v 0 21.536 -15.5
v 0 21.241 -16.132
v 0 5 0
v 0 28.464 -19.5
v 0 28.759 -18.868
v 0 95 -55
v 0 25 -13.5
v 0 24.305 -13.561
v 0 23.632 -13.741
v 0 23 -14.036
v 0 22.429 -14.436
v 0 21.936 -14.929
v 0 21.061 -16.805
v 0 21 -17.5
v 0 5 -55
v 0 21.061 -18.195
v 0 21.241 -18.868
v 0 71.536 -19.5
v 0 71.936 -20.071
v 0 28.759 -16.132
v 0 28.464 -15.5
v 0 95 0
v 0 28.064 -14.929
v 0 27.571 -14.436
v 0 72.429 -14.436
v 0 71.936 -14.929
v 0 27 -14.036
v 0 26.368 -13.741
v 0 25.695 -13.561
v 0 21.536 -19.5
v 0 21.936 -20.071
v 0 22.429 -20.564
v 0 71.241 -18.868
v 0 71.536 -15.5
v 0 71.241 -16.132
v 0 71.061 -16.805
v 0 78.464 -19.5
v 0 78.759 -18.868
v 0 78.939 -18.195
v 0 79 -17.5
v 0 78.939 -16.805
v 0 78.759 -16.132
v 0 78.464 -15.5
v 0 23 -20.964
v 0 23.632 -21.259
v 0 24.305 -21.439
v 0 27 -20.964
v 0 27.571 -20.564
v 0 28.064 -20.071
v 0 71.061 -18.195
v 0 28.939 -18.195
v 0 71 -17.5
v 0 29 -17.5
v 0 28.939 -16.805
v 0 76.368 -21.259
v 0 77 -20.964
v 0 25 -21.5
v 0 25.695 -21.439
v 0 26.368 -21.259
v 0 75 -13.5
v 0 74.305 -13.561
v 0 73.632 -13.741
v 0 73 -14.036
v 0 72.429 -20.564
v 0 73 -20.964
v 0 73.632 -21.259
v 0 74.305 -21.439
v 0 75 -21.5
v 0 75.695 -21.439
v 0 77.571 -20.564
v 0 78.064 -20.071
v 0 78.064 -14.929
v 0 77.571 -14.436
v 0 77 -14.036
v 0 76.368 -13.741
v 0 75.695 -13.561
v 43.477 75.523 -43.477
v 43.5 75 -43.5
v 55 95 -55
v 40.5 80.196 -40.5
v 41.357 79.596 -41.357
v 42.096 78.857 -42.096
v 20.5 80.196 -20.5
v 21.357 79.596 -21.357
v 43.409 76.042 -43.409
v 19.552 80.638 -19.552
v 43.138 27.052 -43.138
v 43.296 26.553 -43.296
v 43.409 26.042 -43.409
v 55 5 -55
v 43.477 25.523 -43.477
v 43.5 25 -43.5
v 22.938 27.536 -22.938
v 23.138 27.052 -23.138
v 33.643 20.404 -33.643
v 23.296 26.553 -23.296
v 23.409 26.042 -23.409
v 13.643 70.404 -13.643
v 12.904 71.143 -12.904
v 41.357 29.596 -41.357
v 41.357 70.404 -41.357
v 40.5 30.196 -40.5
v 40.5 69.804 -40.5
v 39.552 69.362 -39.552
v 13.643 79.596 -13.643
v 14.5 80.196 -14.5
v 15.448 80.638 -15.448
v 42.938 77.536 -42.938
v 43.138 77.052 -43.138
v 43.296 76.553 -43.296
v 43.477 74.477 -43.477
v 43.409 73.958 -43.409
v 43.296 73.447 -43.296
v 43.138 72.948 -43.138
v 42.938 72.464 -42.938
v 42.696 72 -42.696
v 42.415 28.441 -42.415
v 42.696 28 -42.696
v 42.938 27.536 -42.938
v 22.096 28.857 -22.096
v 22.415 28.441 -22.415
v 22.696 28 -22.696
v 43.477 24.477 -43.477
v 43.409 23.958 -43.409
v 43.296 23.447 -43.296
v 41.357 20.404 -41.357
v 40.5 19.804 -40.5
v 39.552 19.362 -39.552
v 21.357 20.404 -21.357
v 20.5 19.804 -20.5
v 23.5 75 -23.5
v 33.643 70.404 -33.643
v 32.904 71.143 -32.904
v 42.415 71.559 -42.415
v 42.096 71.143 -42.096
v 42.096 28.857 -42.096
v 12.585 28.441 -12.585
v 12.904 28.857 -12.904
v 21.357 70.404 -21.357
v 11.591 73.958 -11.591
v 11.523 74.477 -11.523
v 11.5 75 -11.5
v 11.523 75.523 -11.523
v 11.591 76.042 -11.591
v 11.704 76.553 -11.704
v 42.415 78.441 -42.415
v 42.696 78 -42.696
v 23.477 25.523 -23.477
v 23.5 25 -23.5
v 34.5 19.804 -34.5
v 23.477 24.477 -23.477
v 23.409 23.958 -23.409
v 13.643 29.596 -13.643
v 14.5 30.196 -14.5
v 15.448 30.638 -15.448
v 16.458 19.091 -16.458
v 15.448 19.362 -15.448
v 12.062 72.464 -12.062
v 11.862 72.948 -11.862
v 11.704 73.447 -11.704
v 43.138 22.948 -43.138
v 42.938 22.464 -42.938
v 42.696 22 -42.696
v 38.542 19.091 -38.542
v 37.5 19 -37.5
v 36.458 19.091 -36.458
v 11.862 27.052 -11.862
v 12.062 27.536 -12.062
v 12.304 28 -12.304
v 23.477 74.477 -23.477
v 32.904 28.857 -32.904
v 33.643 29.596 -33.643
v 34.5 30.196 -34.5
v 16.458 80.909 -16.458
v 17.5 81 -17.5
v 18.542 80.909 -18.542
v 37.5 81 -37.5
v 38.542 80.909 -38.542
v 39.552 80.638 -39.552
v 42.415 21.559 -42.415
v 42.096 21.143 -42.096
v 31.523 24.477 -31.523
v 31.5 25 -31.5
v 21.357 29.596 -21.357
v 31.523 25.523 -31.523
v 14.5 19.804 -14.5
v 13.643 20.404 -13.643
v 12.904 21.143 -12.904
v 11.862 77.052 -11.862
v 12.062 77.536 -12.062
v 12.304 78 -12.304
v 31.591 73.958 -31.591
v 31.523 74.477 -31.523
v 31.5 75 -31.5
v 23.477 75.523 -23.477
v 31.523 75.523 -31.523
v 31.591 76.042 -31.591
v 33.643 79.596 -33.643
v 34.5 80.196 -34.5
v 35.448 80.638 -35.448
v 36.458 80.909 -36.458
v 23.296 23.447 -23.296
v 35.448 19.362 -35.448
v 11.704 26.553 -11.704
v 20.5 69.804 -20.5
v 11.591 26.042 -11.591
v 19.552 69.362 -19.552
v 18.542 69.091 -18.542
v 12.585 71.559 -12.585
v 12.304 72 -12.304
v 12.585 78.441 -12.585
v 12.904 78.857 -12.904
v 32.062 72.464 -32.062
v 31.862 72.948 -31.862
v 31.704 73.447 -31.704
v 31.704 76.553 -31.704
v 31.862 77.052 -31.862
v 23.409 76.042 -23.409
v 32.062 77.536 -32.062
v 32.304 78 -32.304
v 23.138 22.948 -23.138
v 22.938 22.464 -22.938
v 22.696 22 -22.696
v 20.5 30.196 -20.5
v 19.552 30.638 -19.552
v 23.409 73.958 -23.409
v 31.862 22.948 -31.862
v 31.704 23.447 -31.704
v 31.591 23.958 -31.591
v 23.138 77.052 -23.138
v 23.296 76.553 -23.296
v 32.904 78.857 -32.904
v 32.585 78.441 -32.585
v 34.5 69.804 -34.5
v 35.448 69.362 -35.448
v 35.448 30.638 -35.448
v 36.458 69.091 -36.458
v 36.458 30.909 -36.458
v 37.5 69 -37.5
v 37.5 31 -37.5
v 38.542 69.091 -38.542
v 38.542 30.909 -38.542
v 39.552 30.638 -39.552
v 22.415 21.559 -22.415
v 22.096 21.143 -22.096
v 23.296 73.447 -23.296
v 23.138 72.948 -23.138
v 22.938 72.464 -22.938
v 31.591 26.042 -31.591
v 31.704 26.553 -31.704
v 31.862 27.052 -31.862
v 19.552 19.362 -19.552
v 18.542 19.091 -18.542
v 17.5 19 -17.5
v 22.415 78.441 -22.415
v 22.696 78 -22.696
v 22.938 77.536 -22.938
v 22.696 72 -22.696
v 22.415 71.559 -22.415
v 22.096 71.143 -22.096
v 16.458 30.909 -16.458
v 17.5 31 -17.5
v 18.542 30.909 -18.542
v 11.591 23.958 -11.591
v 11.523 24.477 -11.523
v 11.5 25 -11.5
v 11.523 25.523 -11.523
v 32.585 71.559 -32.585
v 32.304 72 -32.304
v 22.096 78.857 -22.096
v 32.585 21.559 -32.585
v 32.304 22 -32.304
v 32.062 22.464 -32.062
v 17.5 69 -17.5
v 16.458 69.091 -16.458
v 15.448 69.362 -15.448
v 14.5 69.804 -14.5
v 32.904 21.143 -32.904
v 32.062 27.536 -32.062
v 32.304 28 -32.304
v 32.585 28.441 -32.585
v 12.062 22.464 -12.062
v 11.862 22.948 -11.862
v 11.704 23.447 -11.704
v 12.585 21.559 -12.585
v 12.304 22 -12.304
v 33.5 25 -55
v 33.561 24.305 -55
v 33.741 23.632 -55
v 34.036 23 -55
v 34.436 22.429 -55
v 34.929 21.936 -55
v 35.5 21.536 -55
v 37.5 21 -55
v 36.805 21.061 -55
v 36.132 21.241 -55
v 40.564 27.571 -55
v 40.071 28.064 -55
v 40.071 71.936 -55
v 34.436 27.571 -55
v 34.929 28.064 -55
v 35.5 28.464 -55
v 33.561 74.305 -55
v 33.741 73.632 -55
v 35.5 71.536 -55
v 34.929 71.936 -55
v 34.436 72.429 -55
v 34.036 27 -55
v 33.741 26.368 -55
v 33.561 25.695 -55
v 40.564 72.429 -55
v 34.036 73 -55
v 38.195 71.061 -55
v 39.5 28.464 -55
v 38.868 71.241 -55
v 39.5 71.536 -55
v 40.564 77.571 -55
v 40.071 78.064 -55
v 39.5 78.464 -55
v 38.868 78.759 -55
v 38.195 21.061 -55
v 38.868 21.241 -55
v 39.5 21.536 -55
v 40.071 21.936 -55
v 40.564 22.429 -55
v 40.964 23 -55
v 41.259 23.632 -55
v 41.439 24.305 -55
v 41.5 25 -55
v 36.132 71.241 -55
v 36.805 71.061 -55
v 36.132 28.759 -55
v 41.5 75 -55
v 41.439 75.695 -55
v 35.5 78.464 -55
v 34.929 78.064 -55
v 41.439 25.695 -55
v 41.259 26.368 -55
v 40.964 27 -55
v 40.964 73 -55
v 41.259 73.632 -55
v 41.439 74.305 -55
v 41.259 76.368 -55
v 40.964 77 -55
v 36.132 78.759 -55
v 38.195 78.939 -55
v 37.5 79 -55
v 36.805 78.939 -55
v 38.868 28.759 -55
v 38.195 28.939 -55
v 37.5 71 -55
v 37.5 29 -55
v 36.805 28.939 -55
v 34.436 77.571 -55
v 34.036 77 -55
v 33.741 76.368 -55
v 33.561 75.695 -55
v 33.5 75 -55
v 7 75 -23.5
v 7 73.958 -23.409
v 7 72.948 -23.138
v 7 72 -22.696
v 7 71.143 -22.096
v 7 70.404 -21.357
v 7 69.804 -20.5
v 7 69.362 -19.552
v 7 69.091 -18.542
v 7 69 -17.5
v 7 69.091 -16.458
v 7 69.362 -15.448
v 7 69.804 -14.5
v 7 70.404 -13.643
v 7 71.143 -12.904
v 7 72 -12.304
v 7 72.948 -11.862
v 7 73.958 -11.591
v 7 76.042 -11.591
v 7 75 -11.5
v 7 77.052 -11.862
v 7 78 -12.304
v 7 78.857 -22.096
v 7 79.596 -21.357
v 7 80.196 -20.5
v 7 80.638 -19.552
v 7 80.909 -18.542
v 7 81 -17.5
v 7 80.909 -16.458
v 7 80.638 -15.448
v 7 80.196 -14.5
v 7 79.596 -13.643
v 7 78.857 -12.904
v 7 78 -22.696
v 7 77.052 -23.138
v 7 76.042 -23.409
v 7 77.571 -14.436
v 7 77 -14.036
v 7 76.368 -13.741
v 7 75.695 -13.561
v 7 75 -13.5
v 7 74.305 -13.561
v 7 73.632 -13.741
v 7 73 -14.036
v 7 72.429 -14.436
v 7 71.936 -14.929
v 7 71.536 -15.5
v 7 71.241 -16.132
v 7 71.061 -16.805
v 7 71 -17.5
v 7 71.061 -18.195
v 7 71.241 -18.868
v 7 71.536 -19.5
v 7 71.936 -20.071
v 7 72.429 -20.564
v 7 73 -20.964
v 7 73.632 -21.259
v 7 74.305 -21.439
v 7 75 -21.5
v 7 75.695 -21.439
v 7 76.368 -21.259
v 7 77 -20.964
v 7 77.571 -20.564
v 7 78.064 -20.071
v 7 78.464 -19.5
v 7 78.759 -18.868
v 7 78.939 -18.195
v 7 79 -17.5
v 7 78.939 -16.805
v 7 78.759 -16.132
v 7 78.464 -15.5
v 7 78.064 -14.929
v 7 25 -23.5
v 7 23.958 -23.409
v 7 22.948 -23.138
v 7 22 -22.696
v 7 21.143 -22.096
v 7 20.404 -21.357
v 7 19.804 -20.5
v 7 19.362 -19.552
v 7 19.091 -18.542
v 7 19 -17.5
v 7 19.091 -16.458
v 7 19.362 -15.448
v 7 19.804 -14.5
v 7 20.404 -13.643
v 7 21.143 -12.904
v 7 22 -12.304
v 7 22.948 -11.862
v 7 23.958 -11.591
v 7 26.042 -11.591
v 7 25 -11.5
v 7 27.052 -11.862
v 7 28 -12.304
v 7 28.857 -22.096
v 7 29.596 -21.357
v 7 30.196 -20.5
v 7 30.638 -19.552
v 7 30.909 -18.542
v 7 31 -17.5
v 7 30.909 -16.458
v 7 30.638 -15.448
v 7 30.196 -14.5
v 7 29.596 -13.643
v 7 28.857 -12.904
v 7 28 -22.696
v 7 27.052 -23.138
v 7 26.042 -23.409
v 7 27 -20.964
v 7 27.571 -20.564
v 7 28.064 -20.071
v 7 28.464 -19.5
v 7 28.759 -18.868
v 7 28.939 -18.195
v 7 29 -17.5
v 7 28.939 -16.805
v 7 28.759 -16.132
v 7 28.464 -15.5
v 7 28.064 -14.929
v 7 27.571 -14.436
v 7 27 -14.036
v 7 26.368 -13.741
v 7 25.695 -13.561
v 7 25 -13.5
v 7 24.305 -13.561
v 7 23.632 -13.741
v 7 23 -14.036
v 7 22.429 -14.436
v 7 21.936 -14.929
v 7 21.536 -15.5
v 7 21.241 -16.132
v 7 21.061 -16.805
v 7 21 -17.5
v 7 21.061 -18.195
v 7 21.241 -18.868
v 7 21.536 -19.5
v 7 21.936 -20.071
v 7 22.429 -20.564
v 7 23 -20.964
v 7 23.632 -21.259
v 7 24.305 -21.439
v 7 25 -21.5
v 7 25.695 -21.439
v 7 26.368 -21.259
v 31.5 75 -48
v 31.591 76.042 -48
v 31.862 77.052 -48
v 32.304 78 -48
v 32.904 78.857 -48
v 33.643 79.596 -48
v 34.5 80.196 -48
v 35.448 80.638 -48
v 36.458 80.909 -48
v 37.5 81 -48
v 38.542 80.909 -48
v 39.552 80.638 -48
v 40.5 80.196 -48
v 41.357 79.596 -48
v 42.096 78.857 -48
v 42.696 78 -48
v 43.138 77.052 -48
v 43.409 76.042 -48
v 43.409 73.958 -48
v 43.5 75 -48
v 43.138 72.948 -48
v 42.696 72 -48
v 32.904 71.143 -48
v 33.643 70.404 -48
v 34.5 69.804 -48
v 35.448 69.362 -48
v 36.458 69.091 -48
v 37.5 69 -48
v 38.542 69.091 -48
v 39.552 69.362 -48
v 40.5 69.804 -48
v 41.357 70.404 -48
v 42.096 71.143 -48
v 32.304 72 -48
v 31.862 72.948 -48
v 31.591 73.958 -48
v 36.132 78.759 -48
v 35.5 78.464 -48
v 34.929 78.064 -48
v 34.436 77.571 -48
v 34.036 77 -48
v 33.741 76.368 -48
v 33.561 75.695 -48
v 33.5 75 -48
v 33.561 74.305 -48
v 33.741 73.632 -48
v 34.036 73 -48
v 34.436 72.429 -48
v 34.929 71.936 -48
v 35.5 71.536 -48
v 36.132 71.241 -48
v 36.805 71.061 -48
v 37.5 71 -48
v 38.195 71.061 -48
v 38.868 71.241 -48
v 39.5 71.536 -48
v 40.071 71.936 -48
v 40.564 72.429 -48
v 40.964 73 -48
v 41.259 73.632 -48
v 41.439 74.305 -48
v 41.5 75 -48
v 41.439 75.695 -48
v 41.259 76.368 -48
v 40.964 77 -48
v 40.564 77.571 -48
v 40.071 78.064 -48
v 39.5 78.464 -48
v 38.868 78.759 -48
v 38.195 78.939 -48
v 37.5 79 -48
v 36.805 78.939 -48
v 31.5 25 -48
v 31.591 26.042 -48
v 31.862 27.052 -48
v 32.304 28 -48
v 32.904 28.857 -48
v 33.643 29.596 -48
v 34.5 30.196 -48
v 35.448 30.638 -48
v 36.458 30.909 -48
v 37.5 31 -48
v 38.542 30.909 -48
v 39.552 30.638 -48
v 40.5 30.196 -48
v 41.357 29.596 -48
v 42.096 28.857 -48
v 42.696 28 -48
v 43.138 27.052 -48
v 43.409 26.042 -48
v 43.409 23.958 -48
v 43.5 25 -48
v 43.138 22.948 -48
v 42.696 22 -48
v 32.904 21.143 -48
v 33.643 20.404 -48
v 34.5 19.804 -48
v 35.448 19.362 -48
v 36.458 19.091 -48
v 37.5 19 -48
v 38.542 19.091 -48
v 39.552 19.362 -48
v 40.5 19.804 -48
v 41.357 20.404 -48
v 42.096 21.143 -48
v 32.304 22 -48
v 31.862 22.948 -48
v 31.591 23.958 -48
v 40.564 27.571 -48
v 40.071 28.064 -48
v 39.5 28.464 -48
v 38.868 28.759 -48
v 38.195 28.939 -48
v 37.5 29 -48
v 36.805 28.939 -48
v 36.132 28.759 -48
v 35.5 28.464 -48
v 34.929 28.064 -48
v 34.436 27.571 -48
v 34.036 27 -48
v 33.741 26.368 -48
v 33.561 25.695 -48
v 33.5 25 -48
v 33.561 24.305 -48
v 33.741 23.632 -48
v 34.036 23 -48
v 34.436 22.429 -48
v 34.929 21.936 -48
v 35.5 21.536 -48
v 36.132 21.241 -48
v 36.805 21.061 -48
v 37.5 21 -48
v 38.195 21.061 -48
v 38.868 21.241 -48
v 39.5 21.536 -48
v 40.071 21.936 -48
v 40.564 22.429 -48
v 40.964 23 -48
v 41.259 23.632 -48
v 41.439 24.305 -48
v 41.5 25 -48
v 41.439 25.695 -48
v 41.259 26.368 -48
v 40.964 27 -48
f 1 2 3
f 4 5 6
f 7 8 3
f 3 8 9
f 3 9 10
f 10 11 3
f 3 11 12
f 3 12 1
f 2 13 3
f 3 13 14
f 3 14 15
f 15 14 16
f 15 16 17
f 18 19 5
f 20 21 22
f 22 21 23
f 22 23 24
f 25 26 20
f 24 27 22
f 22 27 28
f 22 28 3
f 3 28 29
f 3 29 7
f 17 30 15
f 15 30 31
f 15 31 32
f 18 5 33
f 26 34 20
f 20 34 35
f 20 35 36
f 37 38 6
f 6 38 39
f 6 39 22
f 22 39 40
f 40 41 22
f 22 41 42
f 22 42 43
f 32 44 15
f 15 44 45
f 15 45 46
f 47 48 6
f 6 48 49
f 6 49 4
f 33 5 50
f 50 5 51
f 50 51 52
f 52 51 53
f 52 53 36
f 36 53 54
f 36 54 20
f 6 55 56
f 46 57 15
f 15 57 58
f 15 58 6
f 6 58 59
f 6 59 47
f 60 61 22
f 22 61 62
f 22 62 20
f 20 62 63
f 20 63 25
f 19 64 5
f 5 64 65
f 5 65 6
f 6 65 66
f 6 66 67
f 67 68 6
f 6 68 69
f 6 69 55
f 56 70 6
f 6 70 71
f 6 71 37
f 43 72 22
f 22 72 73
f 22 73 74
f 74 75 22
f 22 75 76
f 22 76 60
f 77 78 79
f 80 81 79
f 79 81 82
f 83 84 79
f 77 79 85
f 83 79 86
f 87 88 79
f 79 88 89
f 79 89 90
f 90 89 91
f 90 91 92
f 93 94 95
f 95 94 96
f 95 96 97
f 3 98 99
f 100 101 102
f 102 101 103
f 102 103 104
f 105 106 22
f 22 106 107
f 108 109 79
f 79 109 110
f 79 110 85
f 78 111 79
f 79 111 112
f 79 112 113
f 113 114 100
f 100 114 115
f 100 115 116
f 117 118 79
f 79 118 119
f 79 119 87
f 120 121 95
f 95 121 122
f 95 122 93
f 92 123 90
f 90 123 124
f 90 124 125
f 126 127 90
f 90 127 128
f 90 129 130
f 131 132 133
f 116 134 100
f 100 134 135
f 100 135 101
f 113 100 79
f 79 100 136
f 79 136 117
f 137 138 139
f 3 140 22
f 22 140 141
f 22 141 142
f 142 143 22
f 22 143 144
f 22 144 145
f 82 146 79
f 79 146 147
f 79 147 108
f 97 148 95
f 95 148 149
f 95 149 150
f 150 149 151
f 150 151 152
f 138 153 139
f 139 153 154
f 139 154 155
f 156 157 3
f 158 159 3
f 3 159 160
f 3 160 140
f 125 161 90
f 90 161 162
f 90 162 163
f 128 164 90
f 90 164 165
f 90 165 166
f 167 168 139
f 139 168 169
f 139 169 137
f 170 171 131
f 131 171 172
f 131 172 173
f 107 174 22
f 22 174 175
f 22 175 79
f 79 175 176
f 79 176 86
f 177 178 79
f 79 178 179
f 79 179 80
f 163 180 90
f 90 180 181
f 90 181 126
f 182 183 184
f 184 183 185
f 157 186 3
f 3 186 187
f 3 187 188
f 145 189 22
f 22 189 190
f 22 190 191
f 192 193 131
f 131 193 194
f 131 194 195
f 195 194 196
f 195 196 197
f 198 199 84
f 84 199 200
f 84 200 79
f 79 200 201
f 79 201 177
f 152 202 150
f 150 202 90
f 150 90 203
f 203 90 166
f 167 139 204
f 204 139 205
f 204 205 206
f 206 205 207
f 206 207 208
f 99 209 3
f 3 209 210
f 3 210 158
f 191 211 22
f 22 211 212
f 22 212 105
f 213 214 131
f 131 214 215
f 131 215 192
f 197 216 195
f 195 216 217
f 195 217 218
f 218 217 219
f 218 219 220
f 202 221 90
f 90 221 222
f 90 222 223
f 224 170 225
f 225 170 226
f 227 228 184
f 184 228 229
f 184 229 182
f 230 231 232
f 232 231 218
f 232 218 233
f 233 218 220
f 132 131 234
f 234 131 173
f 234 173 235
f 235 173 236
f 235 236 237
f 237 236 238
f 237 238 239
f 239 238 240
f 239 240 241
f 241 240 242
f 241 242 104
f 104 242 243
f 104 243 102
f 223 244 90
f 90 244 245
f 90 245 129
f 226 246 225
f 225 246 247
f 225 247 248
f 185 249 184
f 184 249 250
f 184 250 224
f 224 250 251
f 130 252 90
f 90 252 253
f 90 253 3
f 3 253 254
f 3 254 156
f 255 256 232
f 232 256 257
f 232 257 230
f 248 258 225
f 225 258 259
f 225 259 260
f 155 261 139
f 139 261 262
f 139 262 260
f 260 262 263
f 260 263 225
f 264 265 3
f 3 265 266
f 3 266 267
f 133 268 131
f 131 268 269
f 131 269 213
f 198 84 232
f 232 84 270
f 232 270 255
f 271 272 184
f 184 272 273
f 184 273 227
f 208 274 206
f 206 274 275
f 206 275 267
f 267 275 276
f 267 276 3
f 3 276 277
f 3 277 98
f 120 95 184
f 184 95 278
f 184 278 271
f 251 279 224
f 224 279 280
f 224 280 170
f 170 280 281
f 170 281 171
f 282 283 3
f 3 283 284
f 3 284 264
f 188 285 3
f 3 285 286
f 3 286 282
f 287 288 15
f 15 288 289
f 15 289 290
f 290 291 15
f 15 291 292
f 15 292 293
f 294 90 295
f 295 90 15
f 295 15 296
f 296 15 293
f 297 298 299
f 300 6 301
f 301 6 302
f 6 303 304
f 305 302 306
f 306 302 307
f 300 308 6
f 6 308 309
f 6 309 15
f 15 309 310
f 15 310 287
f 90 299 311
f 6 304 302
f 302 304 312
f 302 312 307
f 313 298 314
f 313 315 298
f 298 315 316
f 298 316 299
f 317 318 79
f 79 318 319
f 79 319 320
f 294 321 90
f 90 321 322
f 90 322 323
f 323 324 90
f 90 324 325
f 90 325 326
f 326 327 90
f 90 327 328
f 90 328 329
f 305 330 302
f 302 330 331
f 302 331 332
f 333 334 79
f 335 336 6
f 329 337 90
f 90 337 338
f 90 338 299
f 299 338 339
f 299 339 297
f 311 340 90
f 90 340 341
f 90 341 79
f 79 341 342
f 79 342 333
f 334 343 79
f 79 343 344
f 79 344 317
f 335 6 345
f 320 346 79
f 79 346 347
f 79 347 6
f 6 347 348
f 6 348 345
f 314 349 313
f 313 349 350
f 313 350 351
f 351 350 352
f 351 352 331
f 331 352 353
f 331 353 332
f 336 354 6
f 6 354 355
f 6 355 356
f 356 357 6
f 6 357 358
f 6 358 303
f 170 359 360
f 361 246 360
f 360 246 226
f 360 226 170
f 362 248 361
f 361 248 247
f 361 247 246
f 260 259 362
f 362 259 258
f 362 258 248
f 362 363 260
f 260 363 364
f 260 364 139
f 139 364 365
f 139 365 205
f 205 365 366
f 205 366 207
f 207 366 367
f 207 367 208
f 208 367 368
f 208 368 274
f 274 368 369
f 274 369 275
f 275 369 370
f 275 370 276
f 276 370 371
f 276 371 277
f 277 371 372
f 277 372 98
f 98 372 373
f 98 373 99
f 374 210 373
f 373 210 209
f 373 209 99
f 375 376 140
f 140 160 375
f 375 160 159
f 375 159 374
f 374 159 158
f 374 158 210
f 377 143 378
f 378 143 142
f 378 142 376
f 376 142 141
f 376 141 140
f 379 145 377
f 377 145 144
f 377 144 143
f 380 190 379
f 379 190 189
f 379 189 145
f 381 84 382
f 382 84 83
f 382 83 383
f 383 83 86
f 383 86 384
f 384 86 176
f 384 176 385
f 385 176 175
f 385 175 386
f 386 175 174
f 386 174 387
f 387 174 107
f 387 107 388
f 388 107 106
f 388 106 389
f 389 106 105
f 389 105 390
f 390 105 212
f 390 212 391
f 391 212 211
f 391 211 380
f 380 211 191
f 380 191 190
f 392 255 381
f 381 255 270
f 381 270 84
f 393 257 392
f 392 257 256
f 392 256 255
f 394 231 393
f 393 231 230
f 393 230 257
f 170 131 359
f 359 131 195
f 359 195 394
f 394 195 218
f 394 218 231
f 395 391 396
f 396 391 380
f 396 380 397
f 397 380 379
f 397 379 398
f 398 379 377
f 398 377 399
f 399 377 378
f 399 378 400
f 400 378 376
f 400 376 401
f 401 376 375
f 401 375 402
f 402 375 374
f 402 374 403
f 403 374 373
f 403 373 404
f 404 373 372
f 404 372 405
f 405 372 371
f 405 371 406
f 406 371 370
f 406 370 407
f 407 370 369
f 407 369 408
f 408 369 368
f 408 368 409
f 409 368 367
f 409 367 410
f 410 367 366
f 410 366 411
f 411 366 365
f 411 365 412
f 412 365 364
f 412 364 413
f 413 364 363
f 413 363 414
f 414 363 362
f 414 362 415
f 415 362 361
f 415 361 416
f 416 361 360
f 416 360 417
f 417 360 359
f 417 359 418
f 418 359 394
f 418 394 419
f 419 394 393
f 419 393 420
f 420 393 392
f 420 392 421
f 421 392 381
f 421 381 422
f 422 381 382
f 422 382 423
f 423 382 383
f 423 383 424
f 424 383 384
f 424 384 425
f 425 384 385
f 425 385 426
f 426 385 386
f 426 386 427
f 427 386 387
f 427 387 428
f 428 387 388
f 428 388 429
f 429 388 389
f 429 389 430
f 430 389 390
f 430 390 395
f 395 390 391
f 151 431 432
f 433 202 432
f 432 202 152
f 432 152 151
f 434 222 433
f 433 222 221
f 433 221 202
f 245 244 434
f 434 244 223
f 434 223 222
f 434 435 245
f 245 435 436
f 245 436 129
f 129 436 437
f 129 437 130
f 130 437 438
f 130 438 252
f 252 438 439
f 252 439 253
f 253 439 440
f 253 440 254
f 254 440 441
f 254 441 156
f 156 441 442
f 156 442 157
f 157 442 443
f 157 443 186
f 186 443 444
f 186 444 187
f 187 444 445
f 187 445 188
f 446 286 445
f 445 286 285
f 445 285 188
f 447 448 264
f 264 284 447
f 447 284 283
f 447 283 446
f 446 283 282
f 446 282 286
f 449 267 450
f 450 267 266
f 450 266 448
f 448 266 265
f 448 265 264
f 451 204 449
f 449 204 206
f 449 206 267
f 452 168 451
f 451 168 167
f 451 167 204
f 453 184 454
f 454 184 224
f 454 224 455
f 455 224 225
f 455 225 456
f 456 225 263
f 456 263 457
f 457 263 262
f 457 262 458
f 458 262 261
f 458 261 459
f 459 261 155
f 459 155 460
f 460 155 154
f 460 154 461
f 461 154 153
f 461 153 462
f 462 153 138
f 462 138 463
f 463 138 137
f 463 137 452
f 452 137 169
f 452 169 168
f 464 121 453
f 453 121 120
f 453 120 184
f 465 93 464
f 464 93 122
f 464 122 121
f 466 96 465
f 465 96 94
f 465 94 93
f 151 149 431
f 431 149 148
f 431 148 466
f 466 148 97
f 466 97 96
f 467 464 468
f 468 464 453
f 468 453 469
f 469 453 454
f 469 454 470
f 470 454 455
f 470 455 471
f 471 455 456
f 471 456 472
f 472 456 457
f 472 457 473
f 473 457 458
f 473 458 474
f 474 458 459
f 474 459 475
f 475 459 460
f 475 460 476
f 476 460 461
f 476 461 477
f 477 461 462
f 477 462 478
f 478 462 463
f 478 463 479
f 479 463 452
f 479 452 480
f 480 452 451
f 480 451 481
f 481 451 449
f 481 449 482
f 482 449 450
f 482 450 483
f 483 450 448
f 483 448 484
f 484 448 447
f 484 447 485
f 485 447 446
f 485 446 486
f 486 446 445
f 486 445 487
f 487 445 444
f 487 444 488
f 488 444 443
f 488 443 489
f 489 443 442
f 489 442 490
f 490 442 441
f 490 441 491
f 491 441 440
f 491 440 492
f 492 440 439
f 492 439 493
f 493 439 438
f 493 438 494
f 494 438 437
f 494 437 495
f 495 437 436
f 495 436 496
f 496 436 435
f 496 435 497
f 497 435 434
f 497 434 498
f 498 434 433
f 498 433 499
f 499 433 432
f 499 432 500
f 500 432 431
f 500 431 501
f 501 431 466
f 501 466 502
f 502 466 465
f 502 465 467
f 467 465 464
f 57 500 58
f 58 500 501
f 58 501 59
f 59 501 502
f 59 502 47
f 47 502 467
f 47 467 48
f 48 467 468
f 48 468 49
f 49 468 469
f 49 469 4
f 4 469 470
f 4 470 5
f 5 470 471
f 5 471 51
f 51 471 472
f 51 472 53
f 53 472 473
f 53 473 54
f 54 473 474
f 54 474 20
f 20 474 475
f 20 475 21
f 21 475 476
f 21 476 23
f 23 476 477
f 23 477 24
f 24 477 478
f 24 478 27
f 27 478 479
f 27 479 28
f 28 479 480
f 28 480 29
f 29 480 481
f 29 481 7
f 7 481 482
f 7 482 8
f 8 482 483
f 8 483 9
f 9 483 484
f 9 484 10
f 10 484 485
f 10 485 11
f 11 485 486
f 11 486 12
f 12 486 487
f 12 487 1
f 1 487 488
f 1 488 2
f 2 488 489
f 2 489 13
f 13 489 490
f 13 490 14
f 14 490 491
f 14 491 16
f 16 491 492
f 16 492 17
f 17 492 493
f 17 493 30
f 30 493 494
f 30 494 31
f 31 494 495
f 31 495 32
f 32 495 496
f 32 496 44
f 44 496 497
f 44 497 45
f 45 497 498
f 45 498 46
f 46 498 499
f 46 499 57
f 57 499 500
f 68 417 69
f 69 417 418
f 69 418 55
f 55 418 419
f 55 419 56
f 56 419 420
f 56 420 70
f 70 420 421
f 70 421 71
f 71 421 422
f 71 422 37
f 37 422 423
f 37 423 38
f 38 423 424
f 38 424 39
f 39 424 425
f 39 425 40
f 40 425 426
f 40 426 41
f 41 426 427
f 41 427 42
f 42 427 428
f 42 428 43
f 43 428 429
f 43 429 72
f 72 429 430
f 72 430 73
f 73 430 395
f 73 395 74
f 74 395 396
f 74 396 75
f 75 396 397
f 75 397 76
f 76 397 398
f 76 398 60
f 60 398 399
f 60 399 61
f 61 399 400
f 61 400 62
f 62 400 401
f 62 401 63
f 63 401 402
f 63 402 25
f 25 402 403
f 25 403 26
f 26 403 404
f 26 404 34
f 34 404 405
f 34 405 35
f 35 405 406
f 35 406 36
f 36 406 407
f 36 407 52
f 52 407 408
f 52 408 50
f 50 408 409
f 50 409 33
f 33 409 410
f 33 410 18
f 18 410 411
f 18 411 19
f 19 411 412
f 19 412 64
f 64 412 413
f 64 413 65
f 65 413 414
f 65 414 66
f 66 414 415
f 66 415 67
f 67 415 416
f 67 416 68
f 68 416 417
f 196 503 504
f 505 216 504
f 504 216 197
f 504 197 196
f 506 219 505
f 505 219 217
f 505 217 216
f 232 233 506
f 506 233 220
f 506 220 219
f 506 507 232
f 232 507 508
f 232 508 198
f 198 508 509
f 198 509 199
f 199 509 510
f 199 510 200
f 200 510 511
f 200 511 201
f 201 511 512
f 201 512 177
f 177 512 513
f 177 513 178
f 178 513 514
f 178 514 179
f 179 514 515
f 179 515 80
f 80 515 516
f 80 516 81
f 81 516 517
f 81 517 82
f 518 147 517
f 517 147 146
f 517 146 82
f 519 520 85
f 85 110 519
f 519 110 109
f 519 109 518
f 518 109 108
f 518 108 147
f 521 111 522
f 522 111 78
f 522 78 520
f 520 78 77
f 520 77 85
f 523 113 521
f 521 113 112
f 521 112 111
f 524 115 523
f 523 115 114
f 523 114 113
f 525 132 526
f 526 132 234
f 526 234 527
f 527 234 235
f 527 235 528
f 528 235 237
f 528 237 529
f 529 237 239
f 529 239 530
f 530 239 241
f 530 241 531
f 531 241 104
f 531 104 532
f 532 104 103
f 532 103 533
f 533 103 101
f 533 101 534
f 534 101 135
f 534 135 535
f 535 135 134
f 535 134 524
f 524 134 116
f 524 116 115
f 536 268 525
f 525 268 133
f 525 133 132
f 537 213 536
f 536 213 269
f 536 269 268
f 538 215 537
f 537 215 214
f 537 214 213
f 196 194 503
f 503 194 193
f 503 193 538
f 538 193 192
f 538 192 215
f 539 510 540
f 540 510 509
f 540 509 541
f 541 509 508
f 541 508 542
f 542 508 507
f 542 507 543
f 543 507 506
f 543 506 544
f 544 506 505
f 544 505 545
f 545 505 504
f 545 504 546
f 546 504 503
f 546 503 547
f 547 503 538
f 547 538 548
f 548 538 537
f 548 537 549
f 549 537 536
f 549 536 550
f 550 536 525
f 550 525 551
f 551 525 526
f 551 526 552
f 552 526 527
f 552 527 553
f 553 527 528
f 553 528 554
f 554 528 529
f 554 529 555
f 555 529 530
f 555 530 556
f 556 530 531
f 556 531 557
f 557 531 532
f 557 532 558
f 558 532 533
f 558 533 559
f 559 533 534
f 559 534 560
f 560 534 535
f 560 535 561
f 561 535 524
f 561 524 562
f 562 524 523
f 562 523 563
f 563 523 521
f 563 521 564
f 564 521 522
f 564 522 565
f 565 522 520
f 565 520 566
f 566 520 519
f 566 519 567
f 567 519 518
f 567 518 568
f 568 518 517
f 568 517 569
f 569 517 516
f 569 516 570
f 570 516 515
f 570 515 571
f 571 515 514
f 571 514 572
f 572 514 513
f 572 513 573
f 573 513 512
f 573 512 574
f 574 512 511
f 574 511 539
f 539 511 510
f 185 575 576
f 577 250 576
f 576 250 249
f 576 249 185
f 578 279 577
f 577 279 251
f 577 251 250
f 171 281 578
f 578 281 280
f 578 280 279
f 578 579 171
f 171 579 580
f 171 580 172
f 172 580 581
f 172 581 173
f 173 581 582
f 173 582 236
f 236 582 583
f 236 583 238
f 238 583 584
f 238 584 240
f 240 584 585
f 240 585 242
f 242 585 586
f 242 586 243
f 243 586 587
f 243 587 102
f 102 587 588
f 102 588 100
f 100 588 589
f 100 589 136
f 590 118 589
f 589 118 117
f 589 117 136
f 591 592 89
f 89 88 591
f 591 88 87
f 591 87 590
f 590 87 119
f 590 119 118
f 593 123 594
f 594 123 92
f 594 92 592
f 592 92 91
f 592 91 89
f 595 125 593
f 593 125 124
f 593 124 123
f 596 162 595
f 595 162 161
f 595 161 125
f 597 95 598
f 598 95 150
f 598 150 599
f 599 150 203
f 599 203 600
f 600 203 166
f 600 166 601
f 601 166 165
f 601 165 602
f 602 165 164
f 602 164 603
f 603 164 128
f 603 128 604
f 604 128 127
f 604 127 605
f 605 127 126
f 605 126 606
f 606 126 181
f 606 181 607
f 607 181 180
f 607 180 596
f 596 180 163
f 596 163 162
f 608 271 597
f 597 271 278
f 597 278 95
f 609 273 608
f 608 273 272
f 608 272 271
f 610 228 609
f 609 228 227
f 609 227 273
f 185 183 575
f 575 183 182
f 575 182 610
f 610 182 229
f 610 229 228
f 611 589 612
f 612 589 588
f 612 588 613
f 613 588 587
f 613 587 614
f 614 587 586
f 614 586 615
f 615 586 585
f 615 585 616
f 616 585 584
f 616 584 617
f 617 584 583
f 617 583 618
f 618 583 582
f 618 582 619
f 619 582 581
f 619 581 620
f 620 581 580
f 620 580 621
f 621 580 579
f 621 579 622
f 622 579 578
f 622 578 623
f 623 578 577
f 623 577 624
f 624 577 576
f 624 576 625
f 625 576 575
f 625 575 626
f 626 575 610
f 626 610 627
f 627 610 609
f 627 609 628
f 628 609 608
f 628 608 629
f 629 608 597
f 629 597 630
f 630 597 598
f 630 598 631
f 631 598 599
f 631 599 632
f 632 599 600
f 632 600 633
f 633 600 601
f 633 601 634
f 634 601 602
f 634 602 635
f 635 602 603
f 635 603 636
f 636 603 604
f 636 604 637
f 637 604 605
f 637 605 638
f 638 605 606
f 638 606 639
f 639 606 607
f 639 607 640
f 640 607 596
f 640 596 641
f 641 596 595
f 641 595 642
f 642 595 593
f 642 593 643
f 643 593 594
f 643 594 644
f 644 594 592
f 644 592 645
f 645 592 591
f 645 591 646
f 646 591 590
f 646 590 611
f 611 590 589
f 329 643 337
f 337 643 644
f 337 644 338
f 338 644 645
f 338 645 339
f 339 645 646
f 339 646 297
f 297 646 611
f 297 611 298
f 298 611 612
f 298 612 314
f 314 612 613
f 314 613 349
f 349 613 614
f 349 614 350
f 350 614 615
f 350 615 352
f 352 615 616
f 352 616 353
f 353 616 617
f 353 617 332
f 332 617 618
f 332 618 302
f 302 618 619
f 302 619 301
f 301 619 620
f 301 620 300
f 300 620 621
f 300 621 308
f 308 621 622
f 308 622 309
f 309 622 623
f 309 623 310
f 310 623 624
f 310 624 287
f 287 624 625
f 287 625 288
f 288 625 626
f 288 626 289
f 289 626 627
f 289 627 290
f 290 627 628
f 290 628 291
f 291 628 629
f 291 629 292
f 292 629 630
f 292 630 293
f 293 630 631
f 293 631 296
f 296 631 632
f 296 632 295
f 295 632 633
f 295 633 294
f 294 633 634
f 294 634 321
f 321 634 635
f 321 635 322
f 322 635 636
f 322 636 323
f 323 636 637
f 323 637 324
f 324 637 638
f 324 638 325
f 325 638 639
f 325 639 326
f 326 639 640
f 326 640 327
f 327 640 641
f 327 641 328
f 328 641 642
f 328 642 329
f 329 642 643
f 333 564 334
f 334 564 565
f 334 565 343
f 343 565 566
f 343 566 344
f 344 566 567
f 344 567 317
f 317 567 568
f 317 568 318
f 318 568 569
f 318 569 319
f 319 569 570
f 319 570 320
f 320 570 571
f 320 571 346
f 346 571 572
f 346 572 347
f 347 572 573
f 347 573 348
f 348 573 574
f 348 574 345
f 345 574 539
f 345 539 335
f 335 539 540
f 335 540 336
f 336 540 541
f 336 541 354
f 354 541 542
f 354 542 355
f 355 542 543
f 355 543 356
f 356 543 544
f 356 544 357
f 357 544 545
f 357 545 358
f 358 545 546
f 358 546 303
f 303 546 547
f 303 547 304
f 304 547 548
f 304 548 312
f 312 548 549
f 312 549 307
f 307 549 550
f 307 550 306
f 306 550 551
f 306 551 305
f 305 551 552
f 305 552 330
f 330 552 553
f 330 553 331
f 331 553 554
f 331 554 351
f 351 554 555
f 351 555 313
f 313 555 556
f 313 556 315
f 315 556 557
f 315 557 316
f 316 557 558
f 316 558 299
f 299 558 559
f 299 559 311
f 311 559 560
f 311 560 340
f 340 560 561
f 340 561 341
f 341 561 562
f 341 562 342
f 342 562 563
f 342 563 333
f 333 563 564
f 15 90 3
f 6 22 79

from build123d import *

# Parameters (mm, degrees)
BOSS_EXTRUDE1_DEPTH = 100
SKETCH2_R           = 6
CUT_EXTRUDE1_DEPTH  = 43
SKETCH4_R           = 4
CUT_EXTRUDE2_DEPTH  = 7
SKETCH6_R           = 4
CUT_EXTRUDE3_DEPTH  = 7
SKETCH7_W           = 55
SKETCH7_H           = 5
CUT_EXTRUDE4_DEPTH  = 55


with BuildPart() as part:
    # Sketch1 → Boss-Extrude1 (new body)
    with BuildSketch(Plane(origin=(0, 0, 0), x_dir=(1, 0, 0), z_dir=(0, 1, 0))):
        Polygon((0, 0), (55, 55), (0, 55), align=None)
    extrude(amount=BOSS_EXTRUDE1_DEPTH)

    # Sketch2 → Cut-Extrude1 (cut)
    with BuildSketch(Plane(origin=(50, 0, 0), x_dir=(0, 0, -1), z_dir=(1, 0, 0))):
        with Locations((17.5, 25)):
            Circle(SKETCH2_R)
        with Locations((17.5, 75)):
            Circle(SKETCH2_R)
    cut_extrude1 = extrude(amount=-CUT_EXTRUDE1_DEPTH, mode=Mode.SUBTRACT)

    # Sketch4 → Cut-Extrude2 (cut)
    with BuildSketch(Plane(origin=(7, 0, 0), x_dir=(0, 0, -1), z_dir=(1, 0, 0))):
        with Locations((17.5, 75)):
            Circle(SKETCH4_R)
        with Locations((17.5, 25)):
            Circle(SKETCH4_R)
    extrude(amount=-CUT_EXTRUDE2_DEPTH, mode=Mode.SUBTRACT)

    # Mirror6: Cut-Extrude1 across plane
    add(cut_extrude1.mirror(Plane(origin=(27.5, 0, -27.5), x_dir=(0.707106781, 0, 0.707106781), z_dir=(-0.707106781, 0, 0.707106781))), mode=Mode.SUBTRACT)

    # Sketch6 → Cut-Extrude3 (cut)
    with BuildSketch(Plane.XY.offset(-48)):
        with Locations((37.5, 75)):
            Circle(SKETCH6_R)
        with Locations((37.5, 25)):
            Circle(SKETCH6_R)
    extrude(amount=-CUT_EXTRUDE3_DEPTH, mode=Mode.SUBTRACT)

    # Sketch7 → Cut-Extrude4 (cut)
    with BuildSketch(Plane.XY):
        with Locations((27.5, 97.5)):
            Rectangle(SKETCH7_W, SKETCH7_H)
        with Locations((27.5, 2.5)):
            Rectangle(SKETCH7_W, SKETCH7_H)
    extrude(amount=-CUT_EXTRUDE4_DEPTH, mode=Mode.SUBTRACT)


solid = part.part
